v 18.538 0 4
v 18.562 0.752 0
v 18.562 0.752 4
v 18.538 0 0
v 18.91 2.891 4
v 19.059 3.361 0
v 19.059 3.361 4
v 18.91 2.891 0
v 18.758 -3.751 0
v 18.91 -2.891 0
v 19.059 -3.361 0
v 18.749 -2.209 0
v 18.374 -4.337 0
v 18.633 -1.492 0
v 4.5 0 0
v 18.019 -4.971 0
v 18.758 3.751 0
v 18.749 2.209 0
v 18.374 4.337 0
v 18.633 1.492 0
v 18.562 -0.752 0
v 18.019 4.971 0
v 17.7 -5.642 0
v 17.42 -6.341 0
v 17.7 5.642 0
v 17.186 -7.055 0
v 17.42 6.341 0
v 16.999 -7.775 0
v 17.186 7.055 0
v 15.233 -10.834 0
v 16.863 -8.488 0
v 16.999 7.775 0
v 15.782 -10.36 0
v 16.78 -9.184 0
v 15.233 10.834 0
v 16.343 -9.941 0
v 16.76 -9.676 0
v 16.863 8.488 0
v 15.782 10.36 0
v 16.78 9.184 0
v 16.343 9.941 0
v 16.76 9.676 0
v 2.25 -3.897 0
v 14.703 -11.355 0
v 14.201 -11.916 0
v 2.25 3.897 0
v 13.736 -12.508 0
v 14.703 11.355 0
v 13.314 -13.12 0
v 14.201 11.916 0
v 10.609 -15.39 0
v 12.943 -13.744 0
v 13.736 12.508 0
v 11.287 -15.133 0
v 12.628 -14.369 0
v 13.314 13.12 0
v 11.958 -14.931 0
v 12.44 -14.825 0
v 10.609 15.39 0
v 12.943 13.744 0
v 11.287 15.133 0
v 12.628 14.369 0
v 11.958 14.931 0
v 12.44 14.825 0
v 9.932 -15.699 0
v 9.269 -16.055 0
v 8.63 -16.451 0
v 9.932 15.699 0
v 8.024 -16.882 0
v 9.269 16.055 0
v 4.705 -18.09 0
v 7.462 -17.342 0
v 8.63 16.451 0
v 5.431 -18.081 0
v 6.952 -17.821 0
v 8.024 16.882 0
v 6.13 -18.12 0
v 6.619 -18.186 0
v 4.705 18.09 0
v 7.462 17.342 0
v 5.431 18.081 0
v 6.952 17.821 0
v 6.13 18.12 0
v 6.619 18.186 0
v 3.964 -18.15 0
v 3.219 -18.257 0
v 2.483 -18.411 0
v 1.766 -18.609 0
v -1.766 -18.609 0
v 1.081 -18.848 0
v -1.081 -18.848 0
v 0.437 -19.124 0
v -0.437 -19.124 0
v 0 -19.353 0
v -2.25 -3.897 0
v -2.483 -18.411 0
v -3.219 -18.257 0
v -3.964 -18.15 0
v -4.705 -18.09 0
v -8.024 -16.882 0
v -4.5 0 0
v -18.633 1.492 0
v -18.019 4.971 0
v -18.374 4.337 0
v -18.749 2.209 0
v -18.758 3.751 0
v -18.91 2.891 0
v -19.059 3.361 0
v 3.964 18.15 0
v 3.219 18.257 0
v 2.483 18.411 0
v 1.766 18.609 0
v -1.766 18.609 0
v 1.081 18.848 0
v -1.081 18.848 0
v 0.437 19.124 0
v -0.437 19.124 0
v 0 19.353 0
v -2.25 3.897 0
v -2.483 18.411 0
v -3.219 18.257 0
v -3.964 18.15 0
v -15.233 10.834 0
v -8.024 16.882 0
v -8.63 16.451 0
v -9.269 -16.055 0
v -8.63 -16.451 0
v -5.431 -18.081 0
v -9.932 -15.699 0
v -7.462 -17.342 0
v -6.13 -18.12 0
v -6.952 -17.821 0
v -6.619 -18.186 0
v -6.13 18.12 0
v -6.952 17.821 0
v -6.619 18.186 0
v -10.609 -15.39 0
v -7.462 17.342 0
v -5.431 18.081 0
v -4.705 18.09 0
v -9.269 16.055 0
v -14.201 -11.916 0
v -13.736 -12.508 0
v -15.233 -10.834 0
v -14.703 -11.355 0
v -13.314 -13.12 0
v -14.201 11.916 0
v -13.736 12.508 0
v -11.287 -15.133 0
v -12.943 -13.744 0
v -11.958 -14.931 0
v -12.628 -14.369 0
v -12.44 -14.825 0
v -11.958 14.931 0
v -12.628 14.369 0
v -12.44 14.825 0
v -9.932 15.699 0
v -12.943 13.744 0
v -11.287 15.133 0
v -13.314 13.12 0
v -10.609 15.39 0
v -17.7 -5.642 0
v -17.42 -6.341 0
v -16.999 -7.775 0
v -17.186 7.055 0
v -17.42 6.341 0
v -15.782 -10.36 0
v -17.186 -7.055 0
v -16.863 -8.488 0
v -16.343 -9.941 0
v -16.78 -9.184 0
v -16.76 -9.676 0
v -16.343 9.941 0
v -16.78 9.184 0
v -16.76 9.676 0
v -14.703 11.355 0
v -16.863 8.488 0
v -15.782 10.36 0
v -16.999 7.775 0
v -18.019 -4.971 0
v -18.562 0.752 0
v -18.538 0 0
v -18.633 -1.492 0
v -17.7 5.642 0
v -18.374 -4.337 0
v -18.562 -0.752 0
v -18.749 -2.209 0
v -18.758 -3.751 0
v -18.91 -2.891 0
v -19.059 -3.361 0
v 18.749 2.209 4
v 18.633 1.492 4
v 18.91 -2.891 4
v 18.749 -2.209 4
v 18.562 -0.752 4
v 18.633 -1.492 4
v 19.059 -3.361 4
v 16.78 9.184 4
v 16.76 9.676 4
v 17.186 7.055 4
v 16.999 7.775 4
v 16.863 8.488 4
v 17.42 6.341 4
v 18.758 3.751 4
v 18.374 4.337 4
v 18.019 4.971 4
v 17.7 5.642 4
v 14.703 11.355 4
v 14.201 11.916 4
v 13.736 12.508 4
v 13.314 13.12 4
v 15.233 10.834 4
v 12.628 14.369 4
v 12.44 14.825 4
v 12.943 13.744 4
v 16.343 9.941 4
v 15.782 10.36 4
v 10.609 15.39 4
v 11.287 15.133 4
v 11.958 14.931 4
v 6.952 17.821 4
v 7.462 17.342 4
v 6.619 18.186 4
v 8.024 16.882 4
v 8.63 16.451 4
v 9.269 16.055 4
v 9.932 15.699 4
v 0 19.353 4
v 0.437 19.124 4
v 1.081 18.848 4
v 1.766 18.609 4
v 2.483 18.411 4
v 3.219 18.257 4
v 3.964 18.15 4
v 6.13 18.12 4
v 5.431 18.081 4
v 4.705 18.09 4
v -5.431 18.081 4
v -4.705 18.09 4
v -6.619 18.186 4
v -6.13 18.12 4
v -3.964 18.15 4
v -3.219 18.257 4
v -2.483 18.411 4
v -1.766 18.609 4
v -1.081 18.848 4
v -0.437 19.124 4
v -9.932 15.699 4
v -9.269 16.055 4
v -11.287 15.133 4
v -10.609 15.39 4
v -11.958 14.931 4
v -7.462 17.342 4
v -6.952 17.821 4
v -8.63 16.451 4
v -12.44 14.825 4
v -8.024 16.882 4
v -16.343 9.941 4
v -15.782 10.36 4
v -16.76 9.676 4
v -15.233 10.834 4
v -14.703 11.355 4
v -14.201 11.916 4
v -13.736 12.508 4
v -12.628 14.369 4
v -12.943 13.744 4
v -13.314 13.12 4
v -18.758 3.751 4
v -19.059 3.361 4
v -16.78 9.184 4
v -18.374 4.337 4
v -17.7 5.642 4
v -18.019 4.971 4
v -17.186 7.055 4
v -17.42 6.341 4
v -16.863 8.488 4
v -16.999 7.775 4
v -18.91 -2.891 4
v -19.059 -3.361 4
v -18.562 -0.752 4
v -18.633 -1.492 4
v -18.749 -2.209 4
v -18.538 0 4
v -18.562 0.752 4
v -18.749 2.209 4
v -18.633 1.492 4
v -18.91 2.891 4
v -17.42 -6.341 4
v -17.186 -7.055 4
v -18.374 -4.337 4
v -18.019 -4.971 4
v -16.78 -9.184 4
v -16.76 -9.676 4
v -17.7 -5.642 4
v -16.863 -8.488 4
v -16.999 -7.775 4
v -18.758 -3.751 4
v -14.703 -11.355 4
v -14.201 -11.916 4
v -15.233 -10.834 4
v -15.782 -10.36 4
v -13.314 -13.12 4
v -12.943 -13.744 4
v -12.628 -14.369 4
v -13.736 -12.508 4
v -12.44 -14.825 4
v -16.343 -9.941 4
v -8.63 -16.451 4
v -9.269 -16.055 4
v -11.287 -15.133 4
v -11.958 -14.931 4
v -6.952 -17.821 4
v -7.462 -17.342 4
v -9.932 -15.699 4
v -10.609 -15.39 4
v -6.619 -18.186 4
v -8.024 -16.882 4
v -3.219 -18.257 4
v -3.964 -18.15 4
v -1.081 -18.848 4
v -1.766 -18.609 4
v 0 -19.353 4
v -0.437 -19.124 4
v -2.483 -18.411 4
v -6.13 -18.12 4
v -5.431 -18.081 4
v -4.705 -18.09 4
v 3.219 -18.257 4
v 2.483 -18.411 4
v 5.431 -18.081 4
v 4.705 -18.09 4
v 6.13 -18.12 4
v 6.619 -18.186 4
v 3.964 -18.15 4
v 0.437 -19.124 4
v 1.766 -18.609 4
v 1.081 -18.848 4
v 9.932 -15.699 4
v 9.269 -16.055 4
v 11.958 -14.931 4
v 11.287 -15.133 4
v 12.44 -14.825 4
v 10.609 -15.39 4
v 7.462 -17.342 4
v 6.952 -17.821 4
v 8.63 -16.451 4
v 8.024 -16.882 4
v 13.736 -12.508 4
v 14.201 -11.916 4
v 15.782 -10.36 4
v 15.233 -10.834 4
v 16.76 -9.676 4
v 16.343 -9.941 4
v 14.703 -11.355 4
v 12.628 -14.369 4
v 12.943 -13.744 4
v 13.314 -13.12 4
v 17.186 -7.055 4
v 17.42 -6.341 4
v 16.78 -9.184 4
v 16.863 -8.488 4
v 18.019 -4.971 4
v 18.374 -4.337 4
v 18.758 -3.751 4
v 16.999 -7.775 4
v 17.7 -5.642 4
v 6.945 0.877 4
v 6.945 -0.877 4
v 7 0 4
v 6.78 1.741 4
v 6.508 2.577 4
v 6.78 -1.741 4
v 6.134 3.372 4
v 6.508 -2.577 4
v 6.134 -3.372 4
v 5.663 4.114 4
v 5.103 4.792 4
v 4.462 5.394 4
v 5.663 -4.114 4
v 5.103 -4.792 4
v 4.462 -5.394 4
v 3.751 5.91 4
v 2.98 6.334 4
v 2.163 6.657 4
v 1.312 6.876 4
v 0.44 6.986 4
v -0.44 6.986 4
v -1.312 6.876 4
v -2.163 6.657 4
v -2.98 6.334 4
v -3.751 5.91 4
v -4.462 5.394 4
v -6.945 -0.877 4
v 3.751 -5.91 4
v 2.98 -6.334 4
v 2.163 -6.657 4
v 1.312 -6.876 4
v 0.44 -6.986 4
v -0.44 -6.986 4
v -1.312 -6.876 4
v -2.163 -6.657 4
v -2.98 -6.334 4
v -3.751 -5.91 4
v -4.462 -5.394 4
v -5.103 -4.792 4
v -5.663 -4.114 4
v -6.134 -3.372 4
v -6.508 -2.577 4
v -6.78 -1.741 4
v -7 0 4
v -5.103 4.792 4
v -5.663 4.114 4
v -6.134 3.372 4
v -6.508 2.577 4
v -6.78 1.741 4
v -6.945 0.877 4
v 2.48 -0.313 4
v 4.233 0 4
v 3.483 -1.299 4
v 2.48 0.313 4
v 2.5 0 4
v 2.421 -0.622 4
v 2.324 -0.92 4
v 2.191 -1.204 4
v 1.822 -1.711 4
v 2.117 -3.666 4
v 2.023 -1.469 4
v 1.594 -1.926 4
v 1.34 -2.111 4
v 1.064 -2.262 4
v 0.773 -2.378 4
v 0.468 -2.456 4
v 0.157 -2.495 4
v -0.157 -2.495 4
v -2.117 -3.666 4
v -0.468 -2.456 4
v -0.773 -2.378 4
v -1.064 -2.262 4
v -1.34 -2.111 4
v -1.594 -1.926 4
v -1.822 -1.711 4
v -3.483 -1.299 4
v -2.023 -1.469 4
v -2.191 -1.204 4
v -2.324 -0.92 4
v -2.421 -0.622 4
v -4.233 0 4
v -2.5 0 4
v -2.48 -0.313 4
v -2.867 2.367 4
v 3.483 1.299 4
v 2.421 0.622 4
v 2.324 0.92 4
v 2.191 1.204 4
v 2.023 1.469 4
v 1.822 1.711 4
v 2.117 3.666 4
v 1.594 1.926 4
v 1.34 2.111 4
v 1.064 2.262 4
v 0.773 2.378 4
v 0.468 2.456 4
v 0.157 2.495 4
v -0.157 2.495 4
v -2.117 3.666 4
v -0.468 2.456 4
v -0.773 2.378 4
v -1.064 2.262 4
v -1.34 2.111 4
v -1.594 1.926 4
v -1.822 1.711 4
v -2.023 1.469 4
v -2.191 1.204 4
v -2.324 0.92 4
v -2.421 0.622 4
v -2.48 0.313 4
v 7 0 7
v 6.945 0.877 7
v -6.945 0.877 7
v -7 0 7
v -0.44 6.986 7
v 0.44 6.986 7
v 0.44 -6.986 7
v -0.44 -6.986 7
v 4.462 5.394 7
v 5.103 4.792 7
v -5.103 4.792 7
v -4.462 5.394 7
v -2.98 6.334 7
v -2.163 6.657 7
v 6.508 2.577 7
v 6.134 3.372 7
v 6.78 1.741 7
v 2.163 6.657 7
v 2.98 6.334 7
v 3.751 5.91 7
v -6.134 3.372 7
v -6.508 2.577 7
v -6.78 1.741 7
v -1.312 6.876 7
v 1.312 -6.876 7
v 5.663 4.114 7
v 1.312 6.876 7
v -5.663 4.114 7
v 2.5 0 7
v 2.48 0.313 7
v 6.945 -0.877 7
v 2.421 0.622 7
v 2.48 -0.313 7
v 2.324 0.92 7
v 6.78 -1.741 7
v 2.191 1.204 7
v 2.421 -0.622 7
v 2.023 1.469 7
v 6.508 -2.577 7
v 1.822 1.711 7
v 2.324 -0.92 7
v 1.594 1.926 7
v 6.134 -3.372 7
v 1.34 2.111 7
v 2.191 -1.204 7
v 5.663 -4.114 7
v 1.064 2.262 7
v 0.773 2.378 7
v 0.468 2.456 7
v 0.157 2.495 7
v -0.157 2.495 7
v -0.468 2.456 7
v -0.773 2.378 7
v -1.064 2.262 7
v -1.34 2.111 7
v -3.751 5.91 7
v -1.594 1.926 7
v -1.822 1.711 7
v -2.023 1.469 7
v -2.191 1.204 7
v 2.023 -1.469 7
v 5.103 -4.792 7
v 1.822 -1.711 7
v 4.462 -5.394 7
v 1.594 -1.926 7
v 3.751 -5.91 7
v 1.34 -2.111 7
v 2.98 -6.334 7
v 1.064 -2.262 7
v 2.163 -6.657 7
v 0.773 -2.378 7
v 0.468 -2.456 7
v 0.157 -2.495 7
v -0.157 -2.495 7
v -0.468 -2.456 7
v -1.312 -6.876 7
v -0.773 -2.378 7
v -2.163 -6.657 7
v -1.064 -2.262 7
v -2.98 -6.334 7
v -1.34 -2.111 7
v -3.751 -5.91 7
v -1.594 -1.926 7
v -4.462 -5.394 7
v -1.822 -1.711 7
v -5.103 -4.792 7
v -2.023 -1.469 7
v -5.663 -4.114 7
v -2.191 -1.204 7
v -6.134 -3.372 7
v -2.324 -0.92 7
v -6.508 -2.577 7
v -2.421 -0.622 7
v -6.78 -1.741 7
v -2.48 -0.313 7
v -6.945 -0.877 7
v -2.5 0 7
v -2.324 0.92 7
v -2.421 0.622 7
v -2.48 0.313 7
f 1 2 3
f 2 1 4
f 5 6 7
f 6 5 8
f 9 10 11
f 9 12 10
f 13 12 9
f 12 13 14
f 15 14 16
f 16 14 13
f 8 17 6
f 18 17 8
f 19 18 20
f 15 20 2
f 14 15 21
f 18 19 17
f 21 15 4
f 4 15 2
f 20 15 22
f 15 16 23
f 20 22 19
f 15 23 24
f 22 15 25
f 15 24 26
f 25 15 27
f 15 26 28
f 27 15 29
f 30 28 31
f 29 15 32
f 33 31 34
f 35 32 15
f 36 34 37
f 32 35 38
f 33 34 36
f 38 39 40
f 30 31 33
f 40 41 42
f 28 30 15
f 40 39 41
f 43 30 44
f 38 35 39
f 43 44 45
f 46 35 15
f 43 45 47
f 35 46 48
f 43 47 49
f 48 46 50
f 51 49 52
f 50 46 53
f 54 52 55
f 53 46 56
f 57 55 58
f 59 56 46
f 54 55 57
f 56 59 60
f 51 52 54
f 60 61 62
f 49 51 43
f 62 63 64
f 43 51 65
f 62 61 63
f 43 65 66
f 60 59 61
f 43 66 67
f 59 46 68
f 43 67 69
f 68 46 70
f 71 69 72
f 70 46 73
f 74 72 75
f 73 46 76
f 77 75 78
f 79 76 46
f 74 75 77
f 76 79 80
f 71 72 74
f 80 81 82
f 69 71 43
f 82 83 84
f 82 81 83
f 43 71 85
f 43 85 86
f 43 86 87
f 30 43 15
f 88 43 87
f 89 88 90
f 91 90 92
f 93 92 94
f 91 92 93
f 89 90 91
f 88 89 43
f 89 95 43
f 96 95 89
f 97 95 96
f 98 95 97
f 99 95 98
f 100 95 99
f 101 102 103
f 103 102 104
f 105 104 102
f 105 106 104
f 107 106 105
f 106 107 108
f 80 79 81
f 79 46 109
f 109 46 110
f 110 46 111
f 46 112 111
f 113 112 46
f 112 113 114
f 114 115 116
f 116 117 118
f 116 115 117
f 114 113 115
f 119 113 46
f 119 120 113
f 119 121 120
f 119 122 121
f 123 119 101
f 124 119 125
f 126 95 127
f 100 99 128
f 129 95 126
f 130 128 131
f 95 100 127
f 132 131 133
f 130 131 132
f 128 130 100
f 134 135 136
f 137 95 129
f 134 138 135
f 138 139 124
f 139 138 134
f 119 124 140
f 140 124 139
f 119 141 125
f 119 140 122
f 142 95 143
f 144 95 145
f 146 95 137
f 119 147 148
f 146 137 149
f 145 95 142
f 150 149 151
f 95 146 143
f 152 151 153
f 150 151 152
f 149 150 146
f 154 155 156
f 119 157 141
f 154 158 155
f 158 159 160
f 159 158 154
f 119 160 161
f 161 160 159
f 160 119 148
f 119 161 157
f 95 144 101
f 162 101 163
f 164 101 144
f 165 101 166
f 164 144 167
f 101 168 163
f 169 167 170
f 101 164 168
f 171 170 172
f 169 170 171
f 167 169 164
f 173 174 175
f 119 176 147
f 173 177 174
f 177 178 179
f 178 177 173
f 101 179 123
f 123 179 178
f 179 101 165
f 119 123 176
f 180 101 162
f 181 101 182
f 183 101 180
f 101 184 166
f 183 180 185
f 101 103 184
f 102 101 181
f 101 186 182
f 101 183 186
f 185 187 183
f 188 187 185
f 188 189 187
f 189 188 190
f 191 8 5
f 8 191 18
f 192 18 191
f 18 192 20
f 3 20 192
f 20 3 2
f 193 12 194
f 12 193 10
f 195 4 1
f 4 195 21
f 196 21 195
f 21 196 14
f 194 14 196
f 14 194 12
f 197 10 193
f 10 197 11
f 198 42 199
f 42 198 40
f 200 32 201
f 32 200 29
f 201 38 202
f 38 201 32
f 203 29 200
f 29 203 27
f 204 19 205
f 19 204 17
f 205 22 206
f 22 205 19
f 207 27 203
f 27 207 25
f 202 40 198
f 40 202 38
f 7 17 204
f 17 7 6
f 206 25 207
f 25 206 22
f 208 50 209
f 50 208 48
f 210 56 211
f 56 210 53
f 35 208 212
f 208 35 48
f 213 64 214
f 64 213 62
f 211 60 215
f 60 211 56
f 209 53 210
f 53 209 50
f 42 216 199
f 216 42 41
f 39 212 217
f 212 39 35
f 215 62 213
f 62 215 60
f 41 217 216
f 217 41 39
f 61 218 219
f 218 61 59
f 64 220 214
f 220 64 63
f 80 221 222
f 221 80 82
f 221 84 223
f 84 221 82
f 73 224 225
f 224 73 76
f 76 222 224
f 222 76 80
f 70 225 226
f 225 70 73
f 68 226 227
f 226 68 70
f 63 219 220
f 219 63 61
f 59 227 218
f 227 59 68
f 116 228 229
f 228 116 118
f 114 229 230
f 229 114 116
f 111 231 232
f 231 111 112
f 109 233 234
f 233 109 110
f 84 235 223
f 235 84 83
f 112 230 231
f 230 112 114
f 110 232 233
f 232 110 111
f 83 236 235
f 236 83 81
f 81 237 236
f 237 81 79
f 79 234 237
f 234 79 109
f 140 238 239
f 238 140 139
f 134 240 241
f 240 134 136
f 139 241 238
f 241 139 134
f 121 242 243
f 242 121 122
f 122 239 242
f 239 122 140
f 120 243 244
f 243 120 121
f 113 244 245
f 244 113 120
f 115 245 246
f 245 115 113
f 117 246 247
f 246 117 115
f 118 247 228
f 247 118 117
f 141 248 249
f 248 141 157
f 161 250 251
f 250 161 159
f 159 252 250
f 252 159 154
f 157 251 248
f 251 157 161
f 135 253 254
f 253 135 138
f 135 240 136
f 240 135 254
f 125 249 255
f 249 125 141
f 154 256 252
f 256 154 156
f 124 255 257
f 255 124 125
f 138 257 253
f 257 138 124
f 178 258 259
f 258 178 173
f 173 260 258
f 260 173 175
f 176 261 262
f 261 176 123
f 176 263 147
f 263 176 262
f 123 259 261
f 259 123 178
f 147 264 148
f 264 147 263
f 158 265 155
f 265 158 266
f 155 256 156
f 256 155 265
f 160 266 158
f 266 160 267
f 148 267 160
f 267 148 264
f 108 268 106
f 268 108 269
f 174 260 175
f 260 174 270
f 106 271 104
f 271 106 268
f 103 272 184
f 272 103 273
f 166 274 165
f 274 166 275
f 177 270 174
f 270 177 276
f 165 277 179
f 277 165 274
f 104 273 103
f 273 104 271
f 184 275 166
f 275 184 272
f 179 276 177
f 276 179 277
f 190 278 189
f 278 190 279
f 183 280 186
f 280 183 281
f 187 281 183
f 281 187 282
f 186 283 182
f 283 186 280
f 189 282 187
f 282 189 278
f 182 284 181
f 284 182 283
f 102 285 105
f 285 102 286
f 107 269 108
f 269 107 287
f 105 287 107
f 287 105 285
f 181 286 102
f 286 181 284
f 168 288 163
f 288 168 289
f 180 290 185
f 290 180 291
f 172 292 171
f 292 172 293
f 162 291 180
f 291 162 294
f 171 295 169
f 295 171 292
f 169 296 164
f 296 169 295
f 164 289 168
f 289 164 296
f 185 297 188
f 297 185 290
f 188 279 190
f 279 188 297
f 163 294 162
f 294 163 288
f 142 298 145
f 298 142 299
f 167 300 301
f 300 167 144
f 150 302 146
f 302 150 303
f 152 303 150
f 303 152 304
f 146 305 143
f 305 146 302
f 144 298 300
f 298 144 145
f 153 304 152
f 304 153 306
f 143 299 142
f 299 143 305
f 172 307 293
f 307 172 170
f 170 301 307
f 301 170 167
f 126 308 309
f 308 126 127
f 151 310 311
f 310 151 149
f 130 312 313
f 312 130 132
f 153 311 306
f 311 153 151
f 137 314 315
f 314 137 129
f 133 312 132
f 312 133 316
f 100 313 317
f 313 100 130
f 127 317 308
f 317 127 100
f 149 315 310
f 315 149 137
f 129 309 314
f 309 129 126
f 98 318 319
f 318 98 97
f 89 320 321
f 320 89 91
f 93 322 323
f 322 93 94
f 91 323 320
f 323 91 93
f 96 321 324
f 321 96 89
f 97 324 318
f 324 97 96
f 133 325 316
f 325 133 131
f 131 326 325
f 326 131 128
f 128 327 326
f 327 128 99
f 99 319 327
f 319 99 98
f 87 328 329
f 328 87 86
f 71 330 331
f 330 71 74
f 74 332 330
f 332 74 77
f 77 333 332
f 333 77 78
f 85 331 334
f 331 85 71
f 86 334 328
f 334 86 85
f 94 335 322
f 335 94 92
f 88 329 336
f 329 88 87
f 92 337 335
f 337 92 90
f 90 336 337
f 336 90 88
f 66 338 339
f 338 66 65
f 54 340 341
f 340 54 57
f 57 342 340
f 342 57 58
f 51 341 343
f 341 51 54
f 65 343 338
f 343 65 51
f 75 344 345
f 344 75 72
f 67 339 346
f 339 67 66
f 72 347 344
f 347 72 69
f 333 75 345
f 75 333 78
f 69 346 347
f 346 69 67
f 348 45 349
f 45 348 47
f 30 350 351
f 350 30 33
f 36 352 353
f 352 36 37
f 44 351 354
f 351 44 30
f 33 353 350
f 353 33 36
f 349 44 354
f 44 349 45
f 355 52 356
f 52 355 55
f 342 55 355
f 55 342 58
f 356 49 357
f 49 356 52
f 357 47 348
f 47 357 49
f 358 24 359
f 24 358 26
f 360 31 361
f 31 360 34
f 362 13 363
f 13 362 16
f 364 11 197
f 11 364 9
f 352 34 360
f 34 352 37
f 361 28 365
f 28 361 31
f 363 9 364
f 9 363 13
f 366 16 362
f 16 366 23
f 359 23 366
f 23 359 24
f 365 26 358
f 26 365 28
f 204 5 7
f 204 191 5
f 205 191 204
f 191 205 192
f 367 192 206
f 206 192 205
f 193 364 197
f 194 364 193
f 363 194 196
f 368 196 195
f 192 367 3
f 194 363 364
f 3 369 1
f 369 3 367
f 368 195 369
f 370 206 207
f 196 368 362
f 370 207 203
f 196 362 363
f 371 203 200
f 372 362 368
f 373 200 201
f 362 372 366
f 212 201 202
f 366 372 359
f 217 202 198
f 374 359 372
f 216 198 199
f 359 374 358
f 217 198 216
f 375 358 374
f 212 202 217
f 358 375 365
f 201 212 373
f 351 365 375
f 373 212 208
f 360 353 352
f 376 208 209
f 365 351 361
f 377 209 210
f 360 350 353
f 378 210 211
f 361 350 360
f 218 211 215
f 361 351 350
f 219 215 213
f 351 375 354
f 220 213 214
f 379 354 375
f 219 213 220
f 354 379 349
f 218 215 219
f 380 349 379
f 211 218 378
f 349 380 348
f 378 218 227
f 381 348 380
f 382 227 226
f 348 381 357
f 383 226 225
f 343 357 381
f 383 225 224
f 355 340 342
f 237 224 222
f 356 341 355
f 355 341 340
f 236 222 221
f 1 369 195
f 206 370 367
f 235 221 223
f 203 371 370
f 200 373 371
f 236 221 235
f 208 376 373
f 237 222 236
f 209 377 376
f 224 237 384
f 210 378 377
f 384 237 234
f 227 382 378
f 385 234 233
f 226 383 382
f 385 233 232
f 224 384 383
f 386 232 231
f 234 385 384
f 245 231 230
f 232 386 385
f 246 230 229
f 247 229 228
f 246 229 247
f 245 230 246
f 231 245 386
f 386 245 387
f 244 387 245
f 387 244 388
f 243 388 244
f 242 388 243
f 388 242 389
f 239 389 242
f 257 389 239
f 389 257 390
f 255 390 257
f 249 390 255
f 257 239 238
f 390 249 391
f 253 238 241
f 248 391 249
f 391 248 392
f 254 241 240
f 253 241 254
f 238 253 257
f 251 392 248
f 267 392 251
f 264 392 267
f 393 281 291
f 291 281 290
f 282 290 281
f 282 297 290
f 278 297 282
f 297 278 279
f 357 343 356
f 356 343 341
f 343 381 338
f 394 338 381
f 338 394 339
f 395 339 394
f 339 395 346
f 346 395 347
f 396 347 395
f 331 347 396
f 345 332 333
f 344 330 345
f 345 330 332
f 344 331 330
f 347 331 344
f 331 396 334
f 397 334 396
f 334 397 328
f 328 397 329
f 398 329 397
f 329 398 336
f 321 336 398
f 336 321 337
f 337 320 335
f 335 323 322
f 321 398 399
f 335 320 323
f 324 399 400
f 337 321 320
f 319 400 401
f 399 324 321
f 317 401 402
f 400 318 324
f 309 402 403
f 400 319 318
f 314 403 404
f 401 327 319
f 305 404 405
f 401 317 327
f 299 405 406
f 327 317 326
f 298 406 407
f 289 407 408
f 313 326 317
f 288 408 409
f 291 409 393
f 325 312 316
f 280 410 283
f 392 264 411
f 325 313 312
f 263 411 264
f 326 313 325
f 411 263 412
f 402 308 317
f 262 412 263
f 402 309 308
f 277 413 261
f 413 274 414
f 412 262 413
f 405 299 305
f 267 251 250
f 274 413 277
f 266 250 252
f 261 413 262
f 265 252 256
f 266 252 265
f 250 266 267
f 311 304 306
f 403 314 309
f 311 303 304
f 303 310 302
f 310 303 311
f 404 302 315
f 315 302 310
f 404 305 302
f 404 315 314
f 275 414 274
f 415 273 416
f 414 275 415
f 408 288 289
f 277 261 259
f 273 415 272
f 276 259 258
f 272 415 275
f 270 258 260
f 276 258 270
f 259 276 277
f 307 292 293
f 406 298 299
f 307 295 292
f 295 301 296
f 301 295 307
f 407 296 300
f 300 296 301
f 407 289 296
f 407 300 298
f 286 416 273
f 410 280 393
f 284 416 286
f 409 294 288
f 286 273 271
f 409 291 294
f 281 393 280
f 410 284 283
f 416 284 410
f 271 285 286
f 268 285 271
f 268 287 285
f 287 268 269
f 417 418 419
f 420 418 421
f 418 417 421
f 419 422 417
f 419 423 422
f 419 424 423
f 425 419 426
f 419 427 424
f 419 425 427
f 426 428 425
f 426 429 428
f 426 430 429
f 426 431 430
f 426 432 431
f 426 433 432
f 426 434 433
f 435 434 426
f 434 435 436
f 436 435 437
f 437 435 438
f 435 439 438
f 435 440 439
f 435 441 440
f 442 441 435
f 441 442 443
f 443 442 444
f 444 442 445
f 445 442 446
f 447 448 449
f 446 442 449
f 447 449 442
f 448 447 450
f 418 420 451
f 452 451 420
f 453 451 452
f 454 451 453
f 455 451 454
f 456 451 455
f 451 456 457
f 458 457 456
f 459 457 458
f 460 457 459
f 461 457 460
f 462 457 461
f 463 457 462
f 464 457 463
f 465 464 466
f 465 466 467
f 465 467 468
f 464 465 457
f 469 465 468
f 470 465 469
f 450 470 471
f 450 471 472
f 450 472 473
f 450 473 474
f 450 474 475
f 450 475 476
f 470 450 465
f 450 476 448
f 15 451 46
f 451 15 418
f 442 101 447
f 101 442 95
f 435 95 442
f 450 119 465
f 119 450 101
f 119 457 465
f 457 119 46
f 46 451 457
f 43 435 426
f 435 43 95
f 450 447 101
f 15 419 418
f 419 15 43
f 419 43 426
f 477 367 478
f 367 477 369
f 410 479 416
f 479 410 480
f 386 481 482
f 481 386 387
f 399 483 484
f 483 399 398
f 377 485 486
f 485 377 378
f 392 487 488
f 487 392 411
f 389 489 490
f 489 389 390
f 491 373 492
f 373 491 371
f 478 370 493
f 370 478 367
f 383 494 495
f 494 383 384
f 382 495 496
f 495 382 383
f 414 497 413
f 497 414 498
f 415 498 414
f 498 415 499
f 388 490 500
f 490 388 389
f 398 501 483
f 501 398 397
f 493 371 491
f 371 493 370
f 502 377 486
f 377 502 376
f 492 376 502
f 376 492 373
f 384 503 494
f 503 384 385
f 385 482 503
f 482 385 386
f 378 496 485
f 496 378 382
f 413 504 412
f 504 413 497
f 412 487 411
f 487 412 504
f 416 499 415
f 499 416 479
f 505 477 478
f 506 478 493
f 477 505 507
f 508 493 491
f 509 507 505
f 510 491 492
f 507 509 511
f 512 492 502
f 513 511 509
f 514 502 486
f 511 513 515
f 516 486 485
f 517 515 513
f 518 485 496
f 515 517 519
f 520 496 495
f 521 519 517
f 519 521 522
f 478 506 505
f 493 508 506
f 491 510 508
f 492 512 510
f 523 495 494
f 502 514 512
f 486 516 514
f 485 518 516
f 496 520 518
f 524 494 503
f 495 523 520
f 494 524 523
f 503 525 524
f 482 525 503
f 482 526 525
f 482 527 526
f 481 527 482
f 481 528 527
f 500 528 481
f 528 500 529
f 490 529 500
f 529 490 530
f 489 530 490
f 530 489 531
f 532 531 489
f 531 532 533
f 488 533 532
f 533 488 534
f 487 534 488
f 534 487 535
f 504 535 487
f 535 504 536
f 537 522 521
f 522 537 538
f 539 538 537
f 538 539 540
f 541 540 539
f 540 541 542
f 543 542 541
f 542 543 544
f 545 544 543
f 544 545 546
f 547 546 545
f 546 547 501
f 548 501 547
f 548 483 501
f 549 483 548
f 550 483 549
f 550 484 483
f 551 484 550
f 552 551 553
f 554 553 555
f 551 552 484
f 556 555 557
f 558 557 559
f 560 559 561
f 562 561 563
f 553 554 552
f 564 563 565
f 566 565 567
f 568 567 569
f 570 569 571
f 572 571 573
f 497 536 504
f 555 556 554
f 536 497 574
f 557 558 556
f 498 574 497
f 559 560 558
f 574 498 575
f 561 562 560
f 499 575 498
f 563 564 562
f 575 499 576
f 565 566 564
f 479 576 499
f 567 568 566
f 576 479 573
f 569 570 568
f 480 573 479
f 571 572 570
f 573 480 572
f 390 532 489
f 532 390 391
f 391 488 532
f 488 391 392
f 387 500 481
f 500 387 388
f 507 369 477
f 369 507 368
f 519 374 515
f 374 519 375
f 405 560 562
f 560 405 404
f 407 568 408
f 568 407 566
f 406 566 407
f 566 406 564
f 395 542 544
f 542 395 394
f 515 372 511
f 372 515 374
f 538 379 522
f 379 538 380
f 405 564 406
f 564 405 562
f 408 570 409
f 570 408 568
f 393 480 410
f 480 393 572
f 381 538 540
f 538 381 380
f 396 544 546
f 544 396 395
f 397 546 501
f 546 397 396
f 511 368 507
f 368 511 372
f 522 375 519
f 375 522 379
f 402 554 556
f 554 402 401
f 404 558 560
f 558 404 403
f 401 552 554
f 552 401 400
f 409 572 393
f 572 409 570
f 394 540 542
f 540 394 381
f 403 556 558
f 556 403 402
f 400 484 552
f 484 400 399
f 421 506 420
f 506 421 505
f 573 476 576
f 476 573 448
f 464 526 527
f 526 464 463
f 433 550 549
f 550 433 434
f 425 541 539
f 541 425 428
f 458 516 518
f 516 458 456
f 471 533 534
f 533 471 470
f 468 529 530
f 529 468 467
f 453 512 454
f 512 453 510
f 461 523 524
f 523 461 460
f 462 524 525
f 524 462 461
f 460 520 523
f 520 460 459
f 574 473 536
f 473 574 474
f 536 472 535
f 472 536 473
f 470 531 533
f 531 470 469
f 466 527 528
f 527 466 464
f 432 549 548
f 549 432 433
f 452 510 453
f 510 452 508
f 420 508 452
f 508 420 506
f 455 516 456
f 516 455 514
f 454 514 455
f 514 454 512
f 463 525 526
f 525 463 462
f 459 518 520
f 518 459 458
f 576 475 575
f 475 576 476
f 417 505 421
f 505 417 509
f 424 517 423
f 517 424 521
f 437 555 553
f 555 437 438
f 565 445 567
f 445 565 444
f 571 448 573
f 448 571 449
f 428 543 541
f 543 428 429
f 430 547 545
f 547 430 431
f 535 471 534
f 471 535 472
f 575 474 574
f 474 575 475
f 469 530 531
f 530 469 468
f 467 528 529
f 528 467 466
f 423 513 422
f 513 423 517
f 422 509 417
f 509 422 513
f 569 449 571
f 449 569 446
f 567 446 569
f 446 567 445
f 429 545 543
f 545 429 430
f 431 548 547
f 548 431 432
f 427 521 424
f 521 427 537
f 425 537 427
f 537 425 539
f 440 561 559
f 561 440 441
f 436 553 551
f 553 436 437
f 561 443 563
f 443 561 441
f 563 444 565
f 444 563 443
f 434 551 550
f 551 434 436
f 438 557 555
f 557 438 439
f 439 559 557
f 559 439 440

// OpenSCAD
$fn=50;
radius=20;

module bottom() {
    difference() {
        cylinder(r=radius,h=4);
        for(i=[0:20:360])rotate([0,0,i])translate([radius/13*14,0])scale([1,2,1])cylinder(r=3,h=8);
        cylinder(r1=9/2,r2=8.2/2,h=6,$fn=6);            
    }
}
module top() {
    translate([0,0,4])difference() {
        cylinder(r=7,h=3);
        //translate([0,0,0])cylinder(r=8.78/2,h=50,$fn=6);
    }
}
difference() {
    union() {
        top();
        bottom();
    }
    cylinder(r=2.5,h=50);
}
